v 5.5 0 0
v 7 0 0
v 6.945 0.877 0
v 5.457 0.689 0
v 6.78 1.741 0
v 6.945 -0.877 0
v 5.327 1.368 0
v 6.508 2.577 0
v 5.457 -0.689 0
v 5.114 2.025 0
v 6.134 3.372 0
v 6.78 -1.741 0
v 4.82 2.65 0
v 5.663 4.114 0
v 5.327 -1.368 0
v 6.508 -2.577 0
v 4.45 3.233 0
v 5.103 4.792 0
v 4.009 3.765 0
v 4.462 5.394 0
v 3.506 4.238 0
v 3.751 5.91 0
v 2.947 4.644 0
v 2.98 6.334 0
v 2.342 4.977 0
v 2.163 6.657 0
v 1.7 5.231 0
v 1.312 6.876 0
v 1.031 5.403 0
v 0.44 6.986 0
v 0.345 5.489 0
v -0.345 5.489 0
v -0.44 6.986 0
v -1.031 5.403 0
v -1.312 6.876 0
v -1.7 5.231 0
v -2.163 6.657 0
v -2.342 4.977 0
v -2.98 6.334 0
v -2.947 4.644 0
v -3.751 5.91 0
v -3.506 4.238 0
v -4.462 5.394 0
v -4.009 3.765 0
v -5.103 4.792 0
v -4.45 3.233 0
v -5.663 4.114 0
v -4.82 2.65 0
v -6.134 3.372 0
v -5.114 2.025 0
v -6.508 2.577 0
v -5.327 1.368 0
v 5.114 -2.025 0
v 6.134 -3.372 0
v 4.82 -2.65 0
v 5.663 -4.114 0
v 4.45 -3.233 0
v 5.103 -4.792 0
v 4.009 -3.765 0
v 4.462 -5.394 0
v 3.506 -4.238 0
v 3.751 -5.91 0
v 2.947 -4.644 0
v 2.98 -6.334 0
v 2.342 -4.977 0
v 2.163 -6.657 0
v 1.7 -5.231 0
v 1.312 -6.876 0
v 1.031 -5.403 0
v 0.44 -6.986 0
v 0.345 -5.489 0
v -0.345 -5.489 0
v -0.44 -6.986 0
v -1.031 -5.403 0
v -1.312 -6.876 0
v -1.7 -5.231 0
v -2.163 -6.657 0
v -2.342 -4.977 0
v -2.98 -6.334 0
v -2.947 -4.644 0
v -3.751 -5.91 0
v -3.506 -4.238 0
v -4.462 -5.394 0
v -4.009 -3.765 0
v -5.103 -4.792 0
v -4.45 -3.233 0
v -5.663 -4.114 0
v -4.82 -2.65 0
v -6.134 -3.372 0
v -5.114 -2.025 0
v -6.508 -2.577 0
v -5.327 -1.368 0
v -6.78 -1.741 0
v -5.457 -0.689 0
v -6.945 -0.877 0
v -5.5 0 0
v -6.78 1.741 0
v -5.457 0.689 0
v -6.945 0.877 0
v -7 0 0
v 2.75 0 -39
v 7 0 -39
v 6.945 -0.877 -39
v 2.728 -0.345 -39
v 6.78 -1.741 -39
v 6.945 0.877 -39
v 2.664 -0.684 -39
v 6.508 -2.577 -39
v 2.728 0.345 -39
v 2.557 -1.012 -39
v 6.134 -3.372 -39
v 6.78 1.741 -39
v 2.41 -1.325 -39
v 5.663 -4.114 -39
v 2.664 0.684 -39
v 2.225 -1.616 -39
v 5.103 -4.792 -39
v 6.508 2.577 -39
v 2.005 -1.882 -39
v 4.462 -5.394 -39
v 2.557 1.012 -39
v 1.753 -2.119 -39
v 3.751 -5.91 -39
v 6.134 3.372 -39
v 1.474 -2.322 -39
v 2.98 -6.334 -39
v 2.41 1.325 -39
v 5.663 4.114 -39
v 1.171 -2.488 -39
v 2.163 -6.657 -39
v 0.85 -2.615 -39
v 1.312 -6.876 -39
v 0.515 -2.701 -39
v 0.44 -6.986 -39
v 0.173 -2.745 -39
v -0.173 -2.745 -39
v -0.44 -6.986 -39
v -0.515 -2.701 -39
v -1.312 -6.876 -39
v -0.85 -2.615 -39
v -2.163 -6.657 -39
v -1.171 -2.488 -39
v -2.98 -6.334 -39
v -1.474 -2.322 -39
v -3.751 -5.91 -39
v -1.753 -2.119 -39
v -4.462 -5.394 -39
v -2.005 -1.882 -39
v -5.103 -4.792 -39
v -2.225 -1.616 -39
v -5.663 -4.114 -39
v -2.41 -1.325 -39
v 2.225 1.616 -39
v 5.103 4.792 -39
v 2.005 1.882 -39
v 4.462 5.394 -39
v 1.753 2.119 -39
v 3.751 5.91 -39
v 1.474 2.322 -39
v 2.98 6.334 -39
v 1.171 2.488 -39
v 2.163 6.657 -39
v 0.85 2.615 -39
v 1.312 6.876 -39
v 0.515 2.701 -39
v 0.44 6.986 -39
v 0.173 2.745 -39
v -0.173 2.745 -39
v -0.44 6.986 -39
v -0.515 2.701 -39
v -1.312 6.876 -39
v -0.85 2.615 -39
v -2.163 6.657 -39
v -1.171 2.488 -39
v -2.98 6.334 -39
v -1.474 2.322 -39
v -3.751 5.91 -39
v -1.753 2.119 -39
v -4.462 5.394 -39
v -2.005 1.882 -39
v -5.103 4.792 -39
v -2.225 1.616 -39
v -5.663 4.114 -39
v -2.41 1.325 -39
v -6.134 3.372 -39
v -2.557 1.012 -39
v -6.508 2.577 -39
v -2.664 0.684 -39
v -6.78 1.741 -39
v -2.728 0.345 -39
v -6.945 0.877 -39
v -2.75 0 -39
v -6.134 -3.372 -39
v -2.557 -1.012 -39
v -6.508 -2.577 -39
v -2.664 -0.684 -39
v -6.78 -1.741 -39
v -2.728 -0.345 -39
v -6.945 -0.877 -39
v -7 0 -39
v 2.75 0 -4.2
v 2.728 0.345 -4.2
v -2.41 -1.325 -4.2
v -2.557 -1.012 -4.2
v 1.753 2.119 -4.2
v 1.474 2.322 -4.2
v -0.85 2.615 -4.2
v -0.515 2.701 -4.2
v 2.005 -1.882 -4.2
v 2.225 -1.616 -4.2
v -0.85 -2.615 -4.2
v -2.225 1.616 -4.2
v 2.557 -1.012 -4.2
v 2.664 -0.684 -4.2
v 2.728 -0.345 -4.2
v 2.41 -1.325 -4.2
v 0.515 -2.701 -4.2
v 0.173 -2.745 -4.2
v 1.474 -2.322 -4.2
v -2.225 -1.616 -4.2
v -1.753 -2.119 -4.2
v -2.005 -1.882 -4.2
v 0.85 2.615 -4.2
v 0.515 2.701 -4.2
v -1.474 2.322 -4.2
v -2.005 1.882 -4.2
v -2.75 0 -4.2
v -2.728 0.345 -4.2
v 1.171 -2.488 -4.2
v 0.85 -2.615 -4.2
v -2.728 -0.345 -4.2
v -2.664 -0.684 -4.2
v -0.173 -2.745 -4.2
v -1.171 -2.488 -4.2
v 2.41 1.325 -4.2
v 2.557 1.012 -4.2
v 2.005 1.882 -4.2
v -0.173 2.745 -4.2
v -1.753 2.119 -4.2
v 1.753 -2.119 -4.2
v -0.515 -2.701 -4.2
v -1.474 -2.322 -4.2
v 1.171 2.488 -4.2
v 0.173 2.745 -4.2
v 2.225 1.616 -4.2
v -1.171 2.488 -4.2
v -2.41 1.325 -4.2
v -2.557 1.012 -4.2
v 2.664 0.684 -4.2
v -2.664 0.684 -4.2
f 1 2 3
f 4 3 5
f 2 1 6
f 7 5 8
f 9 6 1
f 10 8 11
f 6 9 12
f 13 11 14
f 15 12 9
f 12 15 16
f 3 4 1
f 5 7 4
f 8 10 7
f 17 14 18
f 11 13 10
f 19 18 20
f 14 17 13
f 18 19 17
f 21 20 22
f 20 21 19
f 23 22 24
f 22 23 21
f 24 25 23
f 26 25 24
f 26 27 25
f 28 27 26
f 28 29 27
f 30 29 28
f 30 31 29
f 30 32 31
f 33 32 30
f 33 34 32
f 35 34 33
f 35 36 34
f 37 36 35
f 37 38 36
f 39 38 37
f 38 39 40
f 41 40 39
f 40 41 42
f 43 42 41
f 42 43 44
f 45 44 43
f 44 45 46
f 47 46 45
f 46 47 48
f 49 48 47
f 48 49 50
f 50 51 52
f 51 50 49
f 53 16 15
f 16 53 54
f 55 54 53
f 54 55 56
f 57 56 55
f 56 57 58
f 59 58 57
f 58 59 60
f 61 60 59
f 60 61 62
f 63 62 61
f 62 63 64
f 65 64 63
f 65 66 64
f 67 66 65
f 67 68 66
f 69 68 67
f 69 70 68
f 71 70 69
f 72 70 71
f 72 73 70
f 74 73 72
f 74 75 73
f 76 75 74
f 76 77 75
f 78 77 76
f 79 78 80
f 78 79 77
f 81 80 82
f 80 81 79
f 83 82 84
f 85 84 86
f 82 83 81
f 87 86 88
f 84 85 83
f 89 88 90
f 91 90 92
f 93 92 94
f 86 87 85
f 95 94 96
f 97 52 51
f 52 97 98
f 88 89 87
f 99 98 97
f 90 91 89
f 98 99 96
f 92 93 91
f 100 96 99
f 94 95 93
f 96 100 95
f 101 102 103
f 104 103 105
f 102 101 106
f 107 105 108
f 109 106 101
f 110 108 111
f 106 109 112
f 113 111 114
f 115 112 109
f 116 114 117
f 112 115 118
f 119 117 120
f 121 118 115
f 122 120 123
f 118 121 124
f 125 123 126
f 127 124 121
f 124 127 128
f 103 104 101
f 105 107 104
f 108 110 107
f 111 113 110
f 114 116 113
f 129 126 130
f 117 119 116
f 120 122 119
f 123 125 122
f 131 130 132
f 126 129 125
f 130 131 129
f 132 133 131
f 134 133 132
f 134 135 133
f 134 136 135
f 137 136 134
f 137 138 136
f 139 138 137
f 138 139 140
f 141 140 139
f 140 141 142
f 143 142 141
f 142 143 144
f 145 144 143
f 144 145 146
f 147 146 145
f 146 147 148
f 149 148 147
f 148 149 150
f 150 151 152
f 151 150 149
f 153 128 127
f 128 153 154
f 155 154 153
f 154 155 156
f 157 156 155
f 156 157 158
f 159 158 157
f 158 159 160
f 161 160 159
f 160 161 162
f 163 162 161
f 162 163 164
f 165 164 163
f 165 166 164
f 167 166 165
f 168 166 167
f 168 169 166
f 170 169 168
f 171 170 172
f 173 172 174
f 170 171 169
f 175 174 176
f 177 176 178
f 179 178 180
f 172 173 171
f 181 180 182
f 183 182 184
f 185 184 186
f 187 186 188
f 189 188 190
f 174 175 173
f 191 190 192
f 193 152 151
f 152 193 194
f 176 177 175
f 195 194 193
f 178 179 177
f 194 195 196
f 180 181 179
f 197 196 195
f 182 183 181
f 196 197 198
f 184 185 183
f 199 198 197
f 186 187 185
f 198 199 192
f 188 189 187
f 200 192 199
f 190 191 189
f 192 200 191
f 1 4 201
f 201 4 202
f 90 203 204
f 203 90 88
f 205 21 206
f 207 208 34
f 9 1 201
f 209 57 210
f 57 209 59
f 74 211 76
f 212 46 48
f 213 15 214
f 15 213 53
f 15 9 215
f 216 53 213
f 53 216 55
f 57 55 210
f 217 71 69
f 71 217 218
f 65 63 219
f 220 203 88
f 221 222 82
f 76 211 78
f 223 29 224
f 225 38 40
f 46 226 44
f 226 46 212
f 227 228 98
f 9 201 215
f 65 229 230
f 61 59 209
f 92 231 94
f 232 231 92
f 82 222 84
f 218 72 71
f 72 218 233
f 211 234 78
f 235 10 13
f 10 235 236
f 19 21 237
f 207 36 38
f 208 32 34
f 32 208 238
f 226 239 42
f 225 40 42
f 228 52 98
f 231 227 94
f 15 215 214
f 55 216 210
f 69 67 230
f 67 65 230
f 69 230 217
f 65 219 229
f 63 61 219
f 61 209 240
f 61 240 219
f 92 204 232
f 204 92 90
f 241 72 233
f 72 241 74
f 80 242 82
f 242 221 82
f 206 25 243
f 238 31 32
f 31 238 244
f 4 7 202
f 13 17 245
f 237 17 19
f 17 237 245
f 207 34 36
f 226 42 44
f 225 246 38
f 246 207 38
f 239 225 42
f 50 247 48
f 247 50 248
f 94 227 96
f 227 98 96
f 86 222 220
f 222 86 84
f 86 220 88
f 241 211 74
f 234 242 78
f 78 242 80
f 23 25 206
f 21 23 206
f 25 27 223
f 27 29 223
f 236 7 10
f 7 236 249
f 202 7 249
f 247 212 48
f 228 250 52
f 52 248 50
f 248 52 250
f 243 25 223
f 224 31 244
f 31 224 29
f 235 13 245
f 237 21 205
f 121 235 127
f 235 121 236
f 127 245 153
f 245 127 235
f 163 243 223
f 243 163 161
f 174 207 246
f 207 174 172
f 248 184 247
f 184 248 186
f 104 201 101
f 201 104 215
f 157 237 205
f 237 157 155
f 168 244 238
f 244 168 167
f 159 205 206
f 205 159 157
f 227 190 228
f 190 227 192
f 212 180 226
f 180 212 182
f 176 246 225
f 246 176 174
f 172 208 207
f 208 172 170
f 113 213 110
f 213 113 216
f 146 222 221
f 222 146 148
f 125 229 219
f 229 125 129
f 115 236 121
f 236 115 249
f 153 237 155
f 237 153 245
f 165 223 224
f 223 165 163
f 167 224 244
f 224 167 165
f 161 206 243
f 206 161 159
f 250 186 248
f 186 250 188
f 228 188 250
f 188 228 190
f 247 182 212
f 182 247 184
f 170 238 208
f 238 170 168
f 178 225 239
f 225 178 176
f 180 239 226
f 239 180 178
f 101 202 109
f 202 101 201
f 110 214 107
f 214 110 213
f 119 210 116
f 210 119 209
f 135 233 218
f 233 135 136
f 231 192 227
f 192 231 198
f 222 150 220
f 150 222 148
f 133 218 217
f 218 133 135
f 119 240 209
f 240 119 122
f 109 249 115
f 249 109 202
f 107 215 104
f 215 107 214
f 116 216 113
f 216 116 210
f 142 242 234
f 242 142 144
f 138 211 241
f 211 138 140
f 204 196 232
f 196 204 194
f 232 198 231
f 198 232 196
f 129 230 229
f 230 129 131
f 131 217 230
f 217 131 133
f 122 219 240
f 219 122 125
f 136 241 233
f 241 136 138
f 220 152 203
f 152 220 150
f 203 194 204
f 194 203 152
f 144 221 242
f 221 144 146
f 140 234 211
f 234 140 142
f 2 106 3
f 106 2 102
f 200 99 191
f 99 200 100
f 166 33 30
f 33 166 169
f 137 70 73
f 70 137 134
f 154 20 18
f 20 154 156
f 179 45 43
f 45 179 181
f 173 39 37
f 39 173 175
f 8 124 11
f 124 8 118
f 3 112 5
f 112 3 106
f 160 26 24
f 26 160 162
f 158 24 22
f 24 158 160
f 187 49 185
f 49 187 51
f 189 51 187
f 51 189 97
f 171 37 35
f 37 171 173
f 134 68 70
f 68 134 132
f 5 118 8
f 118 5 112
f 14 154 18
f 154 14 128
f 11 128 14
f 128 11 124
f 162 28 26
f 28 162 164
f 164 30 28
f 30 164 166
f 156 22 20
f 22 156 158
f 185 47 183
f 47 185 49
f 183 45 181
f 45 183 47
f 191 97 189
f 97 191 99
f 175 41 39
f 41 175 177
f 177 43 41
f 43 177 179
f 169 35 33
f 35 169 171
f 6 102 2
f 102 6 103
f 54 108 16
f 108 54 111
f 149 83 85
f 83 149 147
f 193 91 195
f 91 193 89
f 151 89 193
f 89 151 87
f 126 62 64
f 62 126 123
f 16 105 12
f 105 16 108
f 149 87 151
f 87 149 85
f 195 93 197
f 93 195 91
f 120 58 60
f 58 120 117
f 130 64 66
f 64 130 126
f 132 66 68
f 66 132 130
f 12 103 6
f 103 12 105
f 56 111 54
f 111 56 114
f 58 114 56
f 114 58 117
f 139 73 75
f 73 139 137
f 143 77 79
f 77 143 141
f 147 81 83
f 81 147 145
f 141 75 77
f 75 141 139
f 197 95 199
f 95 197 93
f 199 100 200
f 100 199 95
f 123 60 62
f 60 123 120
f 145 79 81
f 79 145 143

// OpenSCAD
$fn = 50;


difference() {
	union() {
		translate(v = [0, 0, -39.0000000000]) {
			cylinder(h = 39, r = 7.0000000000);
		}
		cylinder(h = 0, r = 17.0000000000);
	}
	union() {
		translate(v = [0, 0, 0]) {
			rotate(a = [0, 0, 0]) {
				difference() {
					union() {
						#translate(v = [0, 0, -39.0000000000]) {
							cylinder(h = 39, r = 2.2500000000);
						}
						#translate(v = [0, 0, -4.2000000000]) {
							cylinder(h = 4.2000000000, r1 = 2.7500000000, r2 = 5.5000000000);
						}
						#translate(v = [0, 0, -39.0000000000]) {
							cylinder(h = 39, r = 2.7500000000);
						}
						#translate(v = [0, 0, -39.0000000000]) {
							cylinder(h = 39, r = 2.2500000000);
						}
					}
					union();
				}
			}
		}
	}
}
